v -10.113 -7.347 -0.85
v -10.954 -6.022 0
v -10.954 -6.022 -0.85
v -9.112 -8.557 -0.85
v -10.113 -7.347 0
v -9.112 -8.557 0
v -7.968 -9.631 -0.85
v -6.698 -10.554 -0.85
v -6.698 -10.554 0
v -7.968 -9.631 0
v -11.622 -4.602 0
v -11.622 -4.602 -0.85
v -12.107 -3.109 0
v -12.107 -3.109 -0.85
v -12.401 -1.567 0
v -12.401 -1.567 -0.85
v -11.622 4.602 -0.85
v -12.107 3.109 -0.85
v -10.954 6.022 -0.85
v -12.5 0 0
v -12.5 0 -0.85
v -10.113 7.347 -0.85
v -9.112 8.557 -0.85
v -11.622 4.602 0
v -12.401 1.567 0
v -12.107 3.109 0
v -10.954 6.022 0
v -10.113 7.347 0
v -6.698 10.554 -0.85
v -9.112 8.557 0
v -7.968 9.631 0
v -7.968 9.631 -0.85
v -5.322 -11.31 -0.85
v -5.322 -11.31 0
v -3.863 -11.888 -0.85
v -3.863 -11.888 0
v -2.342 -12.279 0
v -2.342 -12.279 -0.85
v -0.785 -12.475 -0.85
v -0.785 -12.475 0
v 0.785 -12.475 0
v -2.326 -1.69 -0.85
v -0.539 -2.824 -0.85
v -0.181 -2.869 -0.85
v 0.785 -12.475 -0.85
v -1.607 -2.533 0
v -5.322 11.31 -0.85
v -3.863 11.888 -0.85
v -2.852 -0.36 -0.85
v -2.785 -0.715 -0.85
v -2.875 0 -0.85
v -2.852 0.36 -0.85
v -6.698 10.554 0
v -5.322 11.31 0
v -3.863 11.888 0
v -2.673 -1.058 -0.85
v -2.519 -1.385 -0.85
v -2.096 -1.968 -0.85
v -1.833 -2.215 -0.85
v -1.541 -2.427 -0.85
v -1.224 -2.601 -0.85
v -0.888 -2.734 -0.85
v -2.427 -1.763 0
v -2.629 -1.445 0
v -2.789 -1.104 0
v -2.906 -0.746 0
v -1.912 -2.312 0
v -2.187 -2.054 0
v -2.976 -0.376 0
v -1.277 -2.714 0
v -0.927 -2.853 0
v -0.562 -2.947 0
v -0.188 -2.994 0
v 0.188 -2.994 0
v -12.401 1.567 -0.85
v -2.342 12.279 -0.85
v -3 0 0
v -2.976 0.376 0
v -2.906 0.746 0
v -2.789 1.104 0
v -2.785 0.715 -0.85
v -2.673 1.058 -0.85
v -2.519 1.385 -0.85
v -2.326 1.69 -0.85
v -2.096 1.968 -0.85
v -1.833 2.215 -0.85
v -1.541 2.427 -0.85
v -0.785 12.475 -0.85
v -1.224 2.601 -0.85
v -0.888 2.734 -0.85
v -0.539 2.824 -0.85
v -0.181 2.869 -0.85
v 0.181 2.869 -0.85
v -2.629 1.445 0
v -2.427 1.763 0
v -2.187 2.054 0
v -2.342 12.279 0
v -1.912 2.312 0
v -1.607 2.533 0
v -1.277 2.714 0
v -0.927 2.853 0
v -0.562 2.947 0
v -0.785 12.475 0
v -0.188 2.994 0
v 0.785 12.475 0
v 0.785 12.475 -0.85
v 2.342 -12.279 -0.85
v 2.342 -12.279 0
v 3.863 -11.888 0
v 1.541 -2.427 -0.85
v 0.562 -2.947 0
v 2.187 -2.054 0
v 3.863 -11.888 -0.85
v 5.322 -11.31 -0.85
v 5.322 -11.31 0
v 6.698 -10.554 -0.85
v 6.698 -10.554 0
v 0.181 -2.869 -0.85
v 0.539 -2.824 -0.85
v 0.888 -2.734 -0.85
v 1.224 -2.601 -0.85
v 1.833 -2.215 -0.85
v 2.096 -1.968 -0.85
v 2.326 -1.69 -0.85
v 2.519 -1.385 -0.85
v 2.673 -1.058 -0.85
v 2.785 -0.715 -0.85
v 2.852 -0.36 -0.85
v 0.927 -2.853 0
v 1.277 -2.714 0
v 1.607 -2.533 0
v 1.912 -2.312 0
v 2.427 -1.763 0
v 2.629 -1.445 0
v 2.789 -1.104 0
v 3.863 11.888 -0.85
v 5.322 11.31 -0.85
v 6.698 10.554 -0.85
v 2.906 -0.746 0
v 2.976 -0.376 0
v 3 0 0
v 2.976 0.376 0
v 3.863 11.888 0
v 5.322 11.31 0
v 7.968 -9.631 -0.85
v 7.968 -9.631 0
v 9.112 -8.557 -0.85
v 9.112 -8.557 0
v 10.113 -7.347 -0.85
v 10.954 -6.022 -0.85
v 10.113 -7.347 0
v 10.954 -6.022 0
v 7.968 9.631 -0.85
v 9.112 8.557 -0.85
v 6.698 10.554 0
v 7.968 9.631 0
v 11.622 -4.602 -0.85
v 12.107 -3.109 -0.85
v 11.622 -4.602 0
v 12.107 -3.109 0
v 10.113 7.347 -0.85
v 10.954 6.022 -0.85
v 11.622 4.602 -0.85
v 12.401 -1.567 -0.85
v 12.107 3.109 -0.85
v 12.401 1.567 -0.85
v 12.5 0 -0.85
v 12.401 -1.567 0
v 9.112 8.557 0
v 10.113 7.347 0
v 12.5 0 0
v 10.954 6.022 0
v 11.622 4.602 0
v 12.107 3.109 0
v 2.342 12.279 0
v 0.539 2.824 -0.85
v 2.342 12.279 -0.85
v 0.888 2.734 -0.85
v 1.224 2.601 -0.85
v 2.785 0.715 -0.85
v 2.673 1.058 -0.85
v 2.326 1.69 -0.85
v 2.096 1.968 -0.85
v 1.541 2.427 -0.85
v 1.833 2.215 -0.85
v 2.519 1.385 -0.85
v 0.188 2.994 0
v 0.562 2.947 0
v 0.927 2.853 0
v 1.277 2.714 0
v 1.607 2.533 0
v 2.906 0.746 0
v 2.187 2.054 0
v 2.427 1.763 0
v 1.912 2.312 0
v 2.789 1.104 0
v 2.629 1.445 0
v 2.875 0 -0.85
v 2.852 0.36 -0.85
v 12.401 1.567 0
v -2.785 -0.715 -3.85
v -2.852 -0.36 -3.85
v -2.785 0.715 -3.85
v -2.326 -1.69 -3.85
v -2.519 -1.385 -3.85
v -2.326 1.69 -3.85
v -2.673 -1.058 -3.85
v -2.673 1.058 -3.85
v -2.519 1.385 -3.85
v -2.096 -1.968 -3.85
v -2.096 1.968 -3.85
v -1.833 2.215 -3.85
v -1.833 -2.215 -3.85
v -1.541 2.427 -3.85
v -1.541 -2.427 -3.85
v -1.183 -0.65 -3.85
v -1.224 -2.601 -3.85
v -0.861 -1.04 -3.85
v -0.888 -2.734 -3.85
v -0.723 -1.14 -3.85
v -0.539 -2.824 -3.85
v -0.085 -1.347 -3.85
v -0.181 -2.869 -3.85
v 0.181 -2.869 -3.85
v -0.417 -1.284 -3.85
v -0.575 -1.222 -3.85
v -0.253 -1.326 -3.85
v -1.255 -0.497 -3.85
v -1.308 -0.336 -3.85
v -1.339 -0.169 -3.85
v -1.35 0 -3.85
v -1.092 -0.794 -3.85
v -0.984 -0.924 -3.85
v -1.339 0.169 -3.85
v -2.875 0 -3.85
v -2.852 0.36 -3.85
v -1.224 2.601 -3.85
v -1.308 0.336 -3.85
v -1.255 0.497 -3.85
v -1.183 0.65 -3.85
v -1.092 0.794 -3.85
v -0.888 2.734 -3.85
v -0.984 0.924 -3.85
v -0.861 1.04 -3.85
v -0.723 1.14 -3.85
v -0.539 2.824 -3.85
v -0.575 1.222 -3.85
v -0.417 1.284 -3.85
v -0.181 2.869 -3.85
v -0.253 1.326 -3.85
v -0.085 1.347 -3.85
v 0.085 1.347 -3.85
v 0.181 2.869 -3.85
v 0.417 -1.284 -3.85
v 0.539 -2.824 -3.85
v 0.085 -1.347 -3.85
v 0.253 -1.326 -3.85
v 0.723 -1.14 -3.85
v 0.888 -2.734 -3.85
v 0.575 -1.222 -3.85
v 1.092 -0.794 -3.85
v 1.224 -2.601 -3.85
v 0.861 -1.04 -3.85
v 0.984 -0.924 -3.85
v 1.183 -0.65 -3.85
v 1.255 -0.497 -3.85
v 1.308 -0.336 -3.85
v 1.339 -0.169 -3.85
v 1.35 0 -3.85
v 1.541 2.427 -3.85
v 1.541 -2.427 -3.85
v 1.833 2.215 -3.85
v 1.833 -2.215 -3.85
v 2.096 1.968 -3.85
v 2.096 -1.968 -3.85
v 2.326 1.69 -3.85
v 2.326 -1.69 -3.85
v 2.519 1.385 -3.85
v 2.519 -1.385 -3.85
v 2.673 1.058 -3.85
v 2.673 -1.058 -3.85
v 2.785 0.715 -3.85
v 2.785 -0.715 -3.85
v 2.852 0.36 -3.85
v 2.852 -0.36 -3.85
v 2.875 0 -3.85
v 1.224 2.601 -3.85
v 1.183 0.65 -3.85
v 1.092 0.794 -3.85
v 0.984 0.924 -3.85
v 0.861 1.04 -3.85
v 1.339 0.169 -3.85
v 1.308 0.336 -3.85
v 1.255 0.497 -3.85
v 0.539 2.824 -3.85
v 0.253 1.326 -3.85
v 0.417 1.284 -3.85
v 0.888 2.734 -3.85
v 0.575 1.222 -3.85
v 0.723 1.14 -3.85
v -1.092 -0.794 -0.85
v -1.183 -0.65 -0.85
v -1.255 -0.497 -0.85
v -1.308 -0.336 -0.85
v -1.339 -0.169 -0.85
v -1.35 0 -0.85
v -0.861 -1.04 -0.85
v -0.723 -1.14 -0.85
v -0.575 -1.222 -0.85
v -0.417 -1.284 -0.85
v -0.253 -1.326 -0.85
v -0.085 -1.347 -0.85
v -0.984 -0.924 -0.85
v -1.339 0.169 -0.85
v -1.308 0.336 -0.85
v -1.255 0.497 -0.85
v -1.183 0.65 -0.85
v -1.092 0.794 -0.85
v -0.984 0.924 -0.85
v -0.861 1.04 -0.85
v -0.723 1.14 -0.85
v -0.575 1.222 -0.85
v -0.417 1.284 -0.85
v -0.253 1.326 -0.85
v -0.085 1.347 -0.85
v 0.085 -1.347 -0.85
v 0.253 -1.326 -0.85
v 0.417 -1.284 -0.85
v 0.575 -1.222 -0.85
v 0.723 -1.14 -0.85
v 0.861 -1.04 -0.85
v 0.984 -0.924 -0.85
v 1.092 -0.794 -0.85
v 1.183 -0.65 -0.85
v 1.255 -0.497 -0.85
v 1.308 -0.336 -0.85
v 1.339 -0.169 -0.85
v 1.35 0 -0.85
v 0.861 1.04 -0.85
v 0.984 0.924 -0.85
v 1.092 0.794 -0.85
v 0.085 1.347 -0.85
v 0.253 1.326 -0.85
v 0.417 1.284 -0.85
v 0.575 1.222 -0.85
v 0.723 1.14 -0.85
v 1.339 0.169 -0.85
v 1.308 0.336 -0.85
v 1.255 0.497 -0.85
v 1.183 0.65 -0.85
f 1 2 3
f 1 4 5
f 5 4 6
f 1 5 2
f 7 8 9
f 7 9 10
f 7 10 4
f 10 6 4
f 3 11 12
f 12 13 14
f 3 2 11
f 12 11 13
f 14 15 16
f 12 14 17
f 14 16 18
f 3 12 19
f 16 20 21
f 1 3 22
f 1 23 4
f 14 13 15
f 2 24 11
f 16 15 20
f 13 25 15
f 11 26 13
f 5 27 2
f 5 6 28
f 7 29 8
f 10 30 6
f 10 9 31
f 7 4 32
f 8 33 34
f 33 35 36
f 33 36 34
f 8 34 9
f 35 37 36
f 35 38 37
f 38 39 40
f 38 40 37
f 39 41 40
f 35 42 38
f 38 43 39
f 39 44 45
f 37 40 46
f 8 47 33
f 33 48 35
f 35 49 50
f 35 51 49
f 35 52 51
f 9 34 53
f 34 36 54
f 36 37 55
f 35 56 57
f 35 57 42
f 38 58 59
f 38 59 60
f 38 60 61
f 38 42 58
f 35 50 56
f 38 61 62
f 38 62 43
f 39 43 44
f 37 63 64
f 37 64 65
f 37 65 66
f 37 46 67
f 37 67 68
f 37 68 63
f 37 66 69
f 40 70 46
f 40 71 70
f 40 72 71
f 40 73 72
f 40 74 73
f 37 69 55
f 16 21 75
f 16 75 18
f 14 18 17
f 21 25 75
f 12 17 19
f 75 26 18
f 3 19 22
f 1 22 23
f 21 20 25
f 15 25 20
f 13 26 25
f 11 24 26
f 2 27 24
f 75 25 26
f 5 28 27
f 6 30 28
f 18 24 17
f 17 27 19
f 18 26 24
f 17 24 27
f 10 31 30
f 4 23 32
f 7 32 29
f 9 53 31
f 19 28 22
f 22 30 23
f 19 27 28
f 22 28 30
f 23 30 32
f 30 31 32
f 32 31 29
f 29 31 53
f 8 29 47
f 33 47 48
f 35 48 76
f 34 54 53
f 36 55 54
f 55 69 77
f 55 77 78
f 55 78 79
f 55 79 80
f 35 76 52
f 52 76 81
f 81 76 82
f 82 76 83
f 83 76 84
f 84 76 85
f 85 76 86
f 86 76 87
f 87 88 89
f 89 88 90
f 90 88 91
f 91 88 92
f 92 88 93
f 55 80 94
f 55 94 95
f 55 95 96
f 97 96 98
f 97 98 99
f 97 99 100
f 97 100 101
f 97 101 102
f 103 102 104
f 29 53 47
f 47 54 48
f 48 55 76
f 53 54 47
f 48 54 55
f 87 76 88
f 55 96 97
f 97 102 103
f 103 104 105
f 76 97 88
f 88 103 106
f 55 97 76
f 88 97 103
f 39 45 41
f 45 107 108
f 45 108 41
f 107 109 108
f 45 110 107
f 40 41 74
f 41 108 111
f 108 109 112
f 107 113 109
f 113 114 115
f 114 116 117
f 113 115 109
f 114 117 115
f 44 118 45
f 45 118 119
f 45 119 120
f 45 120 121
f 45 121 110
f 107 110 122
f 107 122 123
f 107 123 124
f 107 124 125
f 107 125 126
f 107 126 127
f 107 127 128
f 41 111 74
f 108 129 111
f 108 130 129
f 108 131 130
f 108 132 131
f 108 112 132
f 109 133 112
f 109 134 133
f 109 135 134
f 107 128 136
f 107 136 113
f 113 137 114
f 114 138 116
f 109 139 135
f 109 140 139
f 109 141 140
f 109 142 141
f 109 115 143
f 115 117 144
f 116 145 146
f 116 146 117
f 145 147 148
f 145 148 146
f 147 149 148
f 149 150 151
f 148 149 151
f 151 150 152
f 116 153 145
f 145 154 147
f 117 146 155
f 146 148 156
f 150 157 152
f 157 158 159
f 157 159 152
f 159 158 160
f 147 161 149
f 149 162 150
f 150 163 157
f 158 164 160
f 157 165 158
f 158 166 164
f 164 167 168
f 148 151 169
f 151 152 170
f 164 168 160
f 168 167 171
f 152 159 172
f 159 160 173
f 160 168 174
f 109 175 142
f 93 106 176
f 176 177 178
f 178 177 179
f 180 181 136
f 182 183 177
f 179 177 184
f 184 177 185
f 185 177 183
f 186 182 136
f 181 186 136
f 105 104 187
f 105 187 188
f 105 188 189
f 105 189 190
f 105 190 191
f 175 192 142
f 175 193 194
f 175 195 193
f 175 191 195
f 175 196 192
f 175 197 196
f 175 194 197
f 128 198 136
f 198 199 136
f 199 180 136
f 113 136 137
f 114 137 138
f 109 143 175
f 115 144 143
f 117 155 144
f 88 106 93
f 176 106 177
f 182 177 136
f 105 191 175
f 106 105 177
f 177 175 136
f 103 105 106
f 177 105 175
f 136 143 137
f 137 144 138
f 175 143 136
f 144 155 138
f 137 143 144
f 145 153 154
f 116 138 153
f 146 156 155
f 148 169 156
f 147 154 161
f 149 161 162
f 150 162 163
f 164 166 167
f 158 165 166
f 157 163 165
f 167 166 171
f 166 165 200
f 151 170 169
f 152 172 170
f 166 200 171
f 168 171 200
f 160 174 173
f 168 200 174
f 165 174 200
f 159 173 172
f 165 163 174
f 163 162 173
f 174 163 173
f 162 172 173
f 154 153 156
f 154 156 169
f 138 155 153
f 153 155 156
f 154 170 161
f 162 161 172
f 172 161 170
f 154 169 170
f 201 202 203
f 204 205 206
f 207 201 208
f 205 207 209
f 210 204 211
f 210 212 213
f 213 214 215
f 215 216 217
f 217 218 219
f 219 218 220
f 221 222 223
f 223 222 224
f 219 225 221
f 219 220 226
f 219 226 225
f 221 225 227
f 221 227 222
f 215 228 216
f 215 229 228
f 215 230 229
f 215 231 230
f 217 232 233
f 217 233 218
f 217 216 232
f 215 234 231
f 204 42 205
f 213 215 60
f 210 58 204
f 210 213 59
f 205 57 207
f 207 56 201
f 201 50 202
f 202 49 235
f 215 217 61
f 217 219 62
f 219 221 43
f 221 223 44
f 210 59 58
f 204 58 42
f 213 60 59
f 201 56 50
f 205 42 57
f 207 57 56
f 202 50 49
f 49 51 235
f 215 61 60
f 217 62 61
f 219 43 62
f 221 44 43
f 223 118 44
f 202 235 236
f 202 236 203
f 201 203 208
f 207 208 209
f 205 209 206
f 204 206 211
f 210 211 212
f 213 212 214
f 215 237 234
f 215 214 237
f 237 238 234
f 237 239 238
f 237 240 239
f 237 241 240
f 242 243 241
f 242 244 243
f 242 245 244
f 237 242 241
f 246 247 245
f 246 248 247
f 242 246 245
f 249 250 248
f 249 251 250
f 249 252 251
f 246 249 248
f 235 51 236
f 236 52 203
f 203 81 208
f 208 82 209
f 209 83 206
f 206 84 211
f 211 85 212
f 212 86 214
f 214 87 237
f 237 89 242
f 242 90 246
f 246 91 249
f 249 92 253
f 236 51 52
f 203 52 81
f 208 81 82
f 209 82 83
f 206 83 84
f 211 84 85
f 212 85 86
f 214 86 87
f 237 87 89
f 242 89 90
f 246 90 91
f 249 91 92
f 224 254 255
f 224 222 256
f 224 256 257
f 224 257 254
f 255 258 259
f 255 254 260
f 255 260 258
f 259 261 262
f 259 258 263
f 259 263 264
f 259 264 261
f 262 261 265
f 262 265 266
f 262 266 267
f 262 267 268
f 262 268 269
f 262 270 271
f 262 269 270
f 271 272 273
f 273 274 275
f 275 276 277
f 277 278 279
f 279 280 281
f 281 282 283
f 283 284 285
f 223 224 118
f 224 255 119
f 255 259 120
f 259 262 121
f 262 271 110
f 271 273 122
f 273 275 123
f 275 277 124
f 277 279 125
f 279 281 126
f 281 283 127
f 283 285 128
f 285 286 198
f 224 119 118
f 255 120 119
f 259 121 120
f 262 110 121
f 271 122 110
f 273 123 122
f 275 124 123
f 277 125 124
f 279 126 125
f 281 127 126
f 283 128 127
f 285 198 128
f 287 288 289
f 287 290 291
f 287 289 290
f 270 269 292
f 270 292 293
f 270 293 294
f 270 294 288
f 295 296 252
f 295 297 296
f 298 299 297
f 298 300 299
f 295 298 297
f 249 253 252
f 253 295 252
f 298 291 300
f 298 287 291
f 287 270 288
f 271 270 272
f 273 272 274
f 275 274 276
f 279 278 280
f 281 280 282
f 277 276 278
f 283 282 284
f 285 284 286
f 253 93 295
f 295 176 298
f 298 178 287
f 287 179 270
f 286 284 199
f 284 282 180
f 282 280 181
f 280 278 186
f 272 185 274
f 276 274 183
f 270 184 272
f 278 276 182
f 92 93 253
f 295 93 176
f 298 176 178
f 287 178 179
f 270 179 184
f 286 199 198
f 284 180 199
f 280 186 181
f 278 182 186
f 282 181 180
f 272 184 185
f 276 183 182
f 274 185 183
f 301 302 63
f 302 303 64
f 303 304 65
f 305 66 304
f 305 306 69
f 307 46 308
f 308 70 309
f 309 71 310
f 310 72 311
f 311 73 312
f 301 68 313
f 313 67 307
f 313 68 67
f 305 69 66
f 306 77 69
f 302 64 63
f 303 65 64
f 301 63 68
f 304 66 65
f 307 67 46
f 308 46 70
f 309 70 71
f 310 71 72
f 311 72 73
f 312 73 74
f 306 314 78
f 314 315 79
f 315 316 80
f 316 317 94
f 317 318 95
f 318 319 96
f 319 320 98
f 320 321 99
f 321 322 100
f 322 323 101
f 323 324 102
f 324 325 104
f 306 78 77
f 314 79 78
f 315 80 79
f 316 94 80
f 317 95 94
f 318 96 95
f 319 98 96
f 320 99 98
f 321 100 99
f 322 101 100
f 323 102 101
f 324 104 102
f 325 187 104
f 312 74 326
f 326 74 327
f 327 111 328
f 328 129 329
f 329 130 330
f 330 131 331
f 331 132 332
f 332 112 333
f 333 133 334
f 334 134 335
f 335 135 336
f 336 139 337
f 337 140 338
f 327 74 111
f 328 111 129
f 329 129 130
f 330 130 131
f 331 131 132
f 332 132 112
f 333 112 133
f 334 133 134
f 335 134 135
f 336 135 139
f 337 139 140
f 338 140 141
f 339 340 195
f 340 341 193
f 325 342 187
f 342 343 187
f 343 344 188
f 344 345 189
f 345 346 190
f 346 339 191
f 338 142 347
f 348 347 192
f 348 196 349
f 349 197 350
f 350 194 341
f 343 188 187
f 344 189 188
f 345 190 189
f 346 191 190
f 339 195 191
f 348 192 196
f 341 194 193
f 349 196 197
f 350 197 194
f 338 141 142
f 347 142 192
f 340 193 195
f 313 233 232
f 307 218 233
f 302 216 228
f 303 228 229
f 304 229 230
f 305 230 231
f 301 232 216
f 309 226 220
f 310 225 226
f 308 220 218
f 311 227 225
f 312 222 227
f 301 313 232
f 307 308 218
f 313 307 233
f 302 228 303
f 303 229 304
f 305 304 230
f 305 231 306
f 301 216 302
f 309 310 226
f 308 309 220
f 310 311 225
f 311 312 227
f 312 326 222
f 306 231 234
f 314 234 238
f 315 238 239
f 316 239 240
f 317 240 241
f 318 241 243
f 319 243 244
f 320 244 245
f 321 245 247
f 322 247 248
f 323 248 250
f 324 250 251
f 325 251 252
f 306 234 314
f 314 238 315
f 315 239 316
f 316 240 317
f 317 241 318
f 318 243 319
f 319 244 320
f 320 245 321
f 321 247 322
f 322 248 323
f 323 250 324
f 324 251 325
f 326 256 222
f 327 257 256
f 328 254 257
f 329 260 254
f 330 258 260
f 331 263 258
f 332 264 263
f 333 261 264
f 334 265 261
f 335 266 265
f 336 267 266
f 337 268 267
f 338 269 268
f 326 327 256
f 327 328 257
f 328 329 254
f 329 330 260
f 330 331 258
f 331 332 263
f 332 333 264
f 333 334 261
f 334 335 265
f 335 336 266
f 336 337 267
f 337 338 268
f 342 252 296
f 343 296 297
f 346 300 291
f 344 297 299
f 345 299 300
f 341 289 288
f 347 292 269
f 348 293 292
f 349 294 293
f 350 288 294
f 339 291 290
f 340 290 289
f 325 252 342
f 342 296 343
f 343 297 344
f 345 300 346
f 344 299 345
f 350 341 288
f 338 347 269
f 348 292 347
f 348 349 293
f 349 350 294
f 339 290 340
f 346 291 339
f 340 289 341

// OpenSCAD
$fn = 50;

difference() {
	union() {
		translate(v = [0, 0, -0.85]) {
			cylinder(h = 0.85, r = 12.5);
		}
		#translate(v = [0, 0, -3.85]) {
			cylinder(h = 3.85, r = 2.875);
		}
	}
	union() {
		translate(v = [0, 0, 0]) {
			rotate(a = [0, 0, 0]) {
				difference() {
					union() {
						translate(v = [0, 0, -3.85]) {
							cylinder(h = 3.85, r = 1.0);
						}
						translate(v = [0, 0, -0.85]) {
							cylinder(h = 0.85, r1 = 1.35, r2 = 3.0);
						}
						translate(v = [0, 0, -3.85]) {
							cylinder(h = 3.85, r = 1.35);
						}
						translate(v = [0, 0, -3.85]) {
							cylinder(h = 3.85, r = 1.0);
						}
					}
					union();
				}
			}
		}
	}
}
